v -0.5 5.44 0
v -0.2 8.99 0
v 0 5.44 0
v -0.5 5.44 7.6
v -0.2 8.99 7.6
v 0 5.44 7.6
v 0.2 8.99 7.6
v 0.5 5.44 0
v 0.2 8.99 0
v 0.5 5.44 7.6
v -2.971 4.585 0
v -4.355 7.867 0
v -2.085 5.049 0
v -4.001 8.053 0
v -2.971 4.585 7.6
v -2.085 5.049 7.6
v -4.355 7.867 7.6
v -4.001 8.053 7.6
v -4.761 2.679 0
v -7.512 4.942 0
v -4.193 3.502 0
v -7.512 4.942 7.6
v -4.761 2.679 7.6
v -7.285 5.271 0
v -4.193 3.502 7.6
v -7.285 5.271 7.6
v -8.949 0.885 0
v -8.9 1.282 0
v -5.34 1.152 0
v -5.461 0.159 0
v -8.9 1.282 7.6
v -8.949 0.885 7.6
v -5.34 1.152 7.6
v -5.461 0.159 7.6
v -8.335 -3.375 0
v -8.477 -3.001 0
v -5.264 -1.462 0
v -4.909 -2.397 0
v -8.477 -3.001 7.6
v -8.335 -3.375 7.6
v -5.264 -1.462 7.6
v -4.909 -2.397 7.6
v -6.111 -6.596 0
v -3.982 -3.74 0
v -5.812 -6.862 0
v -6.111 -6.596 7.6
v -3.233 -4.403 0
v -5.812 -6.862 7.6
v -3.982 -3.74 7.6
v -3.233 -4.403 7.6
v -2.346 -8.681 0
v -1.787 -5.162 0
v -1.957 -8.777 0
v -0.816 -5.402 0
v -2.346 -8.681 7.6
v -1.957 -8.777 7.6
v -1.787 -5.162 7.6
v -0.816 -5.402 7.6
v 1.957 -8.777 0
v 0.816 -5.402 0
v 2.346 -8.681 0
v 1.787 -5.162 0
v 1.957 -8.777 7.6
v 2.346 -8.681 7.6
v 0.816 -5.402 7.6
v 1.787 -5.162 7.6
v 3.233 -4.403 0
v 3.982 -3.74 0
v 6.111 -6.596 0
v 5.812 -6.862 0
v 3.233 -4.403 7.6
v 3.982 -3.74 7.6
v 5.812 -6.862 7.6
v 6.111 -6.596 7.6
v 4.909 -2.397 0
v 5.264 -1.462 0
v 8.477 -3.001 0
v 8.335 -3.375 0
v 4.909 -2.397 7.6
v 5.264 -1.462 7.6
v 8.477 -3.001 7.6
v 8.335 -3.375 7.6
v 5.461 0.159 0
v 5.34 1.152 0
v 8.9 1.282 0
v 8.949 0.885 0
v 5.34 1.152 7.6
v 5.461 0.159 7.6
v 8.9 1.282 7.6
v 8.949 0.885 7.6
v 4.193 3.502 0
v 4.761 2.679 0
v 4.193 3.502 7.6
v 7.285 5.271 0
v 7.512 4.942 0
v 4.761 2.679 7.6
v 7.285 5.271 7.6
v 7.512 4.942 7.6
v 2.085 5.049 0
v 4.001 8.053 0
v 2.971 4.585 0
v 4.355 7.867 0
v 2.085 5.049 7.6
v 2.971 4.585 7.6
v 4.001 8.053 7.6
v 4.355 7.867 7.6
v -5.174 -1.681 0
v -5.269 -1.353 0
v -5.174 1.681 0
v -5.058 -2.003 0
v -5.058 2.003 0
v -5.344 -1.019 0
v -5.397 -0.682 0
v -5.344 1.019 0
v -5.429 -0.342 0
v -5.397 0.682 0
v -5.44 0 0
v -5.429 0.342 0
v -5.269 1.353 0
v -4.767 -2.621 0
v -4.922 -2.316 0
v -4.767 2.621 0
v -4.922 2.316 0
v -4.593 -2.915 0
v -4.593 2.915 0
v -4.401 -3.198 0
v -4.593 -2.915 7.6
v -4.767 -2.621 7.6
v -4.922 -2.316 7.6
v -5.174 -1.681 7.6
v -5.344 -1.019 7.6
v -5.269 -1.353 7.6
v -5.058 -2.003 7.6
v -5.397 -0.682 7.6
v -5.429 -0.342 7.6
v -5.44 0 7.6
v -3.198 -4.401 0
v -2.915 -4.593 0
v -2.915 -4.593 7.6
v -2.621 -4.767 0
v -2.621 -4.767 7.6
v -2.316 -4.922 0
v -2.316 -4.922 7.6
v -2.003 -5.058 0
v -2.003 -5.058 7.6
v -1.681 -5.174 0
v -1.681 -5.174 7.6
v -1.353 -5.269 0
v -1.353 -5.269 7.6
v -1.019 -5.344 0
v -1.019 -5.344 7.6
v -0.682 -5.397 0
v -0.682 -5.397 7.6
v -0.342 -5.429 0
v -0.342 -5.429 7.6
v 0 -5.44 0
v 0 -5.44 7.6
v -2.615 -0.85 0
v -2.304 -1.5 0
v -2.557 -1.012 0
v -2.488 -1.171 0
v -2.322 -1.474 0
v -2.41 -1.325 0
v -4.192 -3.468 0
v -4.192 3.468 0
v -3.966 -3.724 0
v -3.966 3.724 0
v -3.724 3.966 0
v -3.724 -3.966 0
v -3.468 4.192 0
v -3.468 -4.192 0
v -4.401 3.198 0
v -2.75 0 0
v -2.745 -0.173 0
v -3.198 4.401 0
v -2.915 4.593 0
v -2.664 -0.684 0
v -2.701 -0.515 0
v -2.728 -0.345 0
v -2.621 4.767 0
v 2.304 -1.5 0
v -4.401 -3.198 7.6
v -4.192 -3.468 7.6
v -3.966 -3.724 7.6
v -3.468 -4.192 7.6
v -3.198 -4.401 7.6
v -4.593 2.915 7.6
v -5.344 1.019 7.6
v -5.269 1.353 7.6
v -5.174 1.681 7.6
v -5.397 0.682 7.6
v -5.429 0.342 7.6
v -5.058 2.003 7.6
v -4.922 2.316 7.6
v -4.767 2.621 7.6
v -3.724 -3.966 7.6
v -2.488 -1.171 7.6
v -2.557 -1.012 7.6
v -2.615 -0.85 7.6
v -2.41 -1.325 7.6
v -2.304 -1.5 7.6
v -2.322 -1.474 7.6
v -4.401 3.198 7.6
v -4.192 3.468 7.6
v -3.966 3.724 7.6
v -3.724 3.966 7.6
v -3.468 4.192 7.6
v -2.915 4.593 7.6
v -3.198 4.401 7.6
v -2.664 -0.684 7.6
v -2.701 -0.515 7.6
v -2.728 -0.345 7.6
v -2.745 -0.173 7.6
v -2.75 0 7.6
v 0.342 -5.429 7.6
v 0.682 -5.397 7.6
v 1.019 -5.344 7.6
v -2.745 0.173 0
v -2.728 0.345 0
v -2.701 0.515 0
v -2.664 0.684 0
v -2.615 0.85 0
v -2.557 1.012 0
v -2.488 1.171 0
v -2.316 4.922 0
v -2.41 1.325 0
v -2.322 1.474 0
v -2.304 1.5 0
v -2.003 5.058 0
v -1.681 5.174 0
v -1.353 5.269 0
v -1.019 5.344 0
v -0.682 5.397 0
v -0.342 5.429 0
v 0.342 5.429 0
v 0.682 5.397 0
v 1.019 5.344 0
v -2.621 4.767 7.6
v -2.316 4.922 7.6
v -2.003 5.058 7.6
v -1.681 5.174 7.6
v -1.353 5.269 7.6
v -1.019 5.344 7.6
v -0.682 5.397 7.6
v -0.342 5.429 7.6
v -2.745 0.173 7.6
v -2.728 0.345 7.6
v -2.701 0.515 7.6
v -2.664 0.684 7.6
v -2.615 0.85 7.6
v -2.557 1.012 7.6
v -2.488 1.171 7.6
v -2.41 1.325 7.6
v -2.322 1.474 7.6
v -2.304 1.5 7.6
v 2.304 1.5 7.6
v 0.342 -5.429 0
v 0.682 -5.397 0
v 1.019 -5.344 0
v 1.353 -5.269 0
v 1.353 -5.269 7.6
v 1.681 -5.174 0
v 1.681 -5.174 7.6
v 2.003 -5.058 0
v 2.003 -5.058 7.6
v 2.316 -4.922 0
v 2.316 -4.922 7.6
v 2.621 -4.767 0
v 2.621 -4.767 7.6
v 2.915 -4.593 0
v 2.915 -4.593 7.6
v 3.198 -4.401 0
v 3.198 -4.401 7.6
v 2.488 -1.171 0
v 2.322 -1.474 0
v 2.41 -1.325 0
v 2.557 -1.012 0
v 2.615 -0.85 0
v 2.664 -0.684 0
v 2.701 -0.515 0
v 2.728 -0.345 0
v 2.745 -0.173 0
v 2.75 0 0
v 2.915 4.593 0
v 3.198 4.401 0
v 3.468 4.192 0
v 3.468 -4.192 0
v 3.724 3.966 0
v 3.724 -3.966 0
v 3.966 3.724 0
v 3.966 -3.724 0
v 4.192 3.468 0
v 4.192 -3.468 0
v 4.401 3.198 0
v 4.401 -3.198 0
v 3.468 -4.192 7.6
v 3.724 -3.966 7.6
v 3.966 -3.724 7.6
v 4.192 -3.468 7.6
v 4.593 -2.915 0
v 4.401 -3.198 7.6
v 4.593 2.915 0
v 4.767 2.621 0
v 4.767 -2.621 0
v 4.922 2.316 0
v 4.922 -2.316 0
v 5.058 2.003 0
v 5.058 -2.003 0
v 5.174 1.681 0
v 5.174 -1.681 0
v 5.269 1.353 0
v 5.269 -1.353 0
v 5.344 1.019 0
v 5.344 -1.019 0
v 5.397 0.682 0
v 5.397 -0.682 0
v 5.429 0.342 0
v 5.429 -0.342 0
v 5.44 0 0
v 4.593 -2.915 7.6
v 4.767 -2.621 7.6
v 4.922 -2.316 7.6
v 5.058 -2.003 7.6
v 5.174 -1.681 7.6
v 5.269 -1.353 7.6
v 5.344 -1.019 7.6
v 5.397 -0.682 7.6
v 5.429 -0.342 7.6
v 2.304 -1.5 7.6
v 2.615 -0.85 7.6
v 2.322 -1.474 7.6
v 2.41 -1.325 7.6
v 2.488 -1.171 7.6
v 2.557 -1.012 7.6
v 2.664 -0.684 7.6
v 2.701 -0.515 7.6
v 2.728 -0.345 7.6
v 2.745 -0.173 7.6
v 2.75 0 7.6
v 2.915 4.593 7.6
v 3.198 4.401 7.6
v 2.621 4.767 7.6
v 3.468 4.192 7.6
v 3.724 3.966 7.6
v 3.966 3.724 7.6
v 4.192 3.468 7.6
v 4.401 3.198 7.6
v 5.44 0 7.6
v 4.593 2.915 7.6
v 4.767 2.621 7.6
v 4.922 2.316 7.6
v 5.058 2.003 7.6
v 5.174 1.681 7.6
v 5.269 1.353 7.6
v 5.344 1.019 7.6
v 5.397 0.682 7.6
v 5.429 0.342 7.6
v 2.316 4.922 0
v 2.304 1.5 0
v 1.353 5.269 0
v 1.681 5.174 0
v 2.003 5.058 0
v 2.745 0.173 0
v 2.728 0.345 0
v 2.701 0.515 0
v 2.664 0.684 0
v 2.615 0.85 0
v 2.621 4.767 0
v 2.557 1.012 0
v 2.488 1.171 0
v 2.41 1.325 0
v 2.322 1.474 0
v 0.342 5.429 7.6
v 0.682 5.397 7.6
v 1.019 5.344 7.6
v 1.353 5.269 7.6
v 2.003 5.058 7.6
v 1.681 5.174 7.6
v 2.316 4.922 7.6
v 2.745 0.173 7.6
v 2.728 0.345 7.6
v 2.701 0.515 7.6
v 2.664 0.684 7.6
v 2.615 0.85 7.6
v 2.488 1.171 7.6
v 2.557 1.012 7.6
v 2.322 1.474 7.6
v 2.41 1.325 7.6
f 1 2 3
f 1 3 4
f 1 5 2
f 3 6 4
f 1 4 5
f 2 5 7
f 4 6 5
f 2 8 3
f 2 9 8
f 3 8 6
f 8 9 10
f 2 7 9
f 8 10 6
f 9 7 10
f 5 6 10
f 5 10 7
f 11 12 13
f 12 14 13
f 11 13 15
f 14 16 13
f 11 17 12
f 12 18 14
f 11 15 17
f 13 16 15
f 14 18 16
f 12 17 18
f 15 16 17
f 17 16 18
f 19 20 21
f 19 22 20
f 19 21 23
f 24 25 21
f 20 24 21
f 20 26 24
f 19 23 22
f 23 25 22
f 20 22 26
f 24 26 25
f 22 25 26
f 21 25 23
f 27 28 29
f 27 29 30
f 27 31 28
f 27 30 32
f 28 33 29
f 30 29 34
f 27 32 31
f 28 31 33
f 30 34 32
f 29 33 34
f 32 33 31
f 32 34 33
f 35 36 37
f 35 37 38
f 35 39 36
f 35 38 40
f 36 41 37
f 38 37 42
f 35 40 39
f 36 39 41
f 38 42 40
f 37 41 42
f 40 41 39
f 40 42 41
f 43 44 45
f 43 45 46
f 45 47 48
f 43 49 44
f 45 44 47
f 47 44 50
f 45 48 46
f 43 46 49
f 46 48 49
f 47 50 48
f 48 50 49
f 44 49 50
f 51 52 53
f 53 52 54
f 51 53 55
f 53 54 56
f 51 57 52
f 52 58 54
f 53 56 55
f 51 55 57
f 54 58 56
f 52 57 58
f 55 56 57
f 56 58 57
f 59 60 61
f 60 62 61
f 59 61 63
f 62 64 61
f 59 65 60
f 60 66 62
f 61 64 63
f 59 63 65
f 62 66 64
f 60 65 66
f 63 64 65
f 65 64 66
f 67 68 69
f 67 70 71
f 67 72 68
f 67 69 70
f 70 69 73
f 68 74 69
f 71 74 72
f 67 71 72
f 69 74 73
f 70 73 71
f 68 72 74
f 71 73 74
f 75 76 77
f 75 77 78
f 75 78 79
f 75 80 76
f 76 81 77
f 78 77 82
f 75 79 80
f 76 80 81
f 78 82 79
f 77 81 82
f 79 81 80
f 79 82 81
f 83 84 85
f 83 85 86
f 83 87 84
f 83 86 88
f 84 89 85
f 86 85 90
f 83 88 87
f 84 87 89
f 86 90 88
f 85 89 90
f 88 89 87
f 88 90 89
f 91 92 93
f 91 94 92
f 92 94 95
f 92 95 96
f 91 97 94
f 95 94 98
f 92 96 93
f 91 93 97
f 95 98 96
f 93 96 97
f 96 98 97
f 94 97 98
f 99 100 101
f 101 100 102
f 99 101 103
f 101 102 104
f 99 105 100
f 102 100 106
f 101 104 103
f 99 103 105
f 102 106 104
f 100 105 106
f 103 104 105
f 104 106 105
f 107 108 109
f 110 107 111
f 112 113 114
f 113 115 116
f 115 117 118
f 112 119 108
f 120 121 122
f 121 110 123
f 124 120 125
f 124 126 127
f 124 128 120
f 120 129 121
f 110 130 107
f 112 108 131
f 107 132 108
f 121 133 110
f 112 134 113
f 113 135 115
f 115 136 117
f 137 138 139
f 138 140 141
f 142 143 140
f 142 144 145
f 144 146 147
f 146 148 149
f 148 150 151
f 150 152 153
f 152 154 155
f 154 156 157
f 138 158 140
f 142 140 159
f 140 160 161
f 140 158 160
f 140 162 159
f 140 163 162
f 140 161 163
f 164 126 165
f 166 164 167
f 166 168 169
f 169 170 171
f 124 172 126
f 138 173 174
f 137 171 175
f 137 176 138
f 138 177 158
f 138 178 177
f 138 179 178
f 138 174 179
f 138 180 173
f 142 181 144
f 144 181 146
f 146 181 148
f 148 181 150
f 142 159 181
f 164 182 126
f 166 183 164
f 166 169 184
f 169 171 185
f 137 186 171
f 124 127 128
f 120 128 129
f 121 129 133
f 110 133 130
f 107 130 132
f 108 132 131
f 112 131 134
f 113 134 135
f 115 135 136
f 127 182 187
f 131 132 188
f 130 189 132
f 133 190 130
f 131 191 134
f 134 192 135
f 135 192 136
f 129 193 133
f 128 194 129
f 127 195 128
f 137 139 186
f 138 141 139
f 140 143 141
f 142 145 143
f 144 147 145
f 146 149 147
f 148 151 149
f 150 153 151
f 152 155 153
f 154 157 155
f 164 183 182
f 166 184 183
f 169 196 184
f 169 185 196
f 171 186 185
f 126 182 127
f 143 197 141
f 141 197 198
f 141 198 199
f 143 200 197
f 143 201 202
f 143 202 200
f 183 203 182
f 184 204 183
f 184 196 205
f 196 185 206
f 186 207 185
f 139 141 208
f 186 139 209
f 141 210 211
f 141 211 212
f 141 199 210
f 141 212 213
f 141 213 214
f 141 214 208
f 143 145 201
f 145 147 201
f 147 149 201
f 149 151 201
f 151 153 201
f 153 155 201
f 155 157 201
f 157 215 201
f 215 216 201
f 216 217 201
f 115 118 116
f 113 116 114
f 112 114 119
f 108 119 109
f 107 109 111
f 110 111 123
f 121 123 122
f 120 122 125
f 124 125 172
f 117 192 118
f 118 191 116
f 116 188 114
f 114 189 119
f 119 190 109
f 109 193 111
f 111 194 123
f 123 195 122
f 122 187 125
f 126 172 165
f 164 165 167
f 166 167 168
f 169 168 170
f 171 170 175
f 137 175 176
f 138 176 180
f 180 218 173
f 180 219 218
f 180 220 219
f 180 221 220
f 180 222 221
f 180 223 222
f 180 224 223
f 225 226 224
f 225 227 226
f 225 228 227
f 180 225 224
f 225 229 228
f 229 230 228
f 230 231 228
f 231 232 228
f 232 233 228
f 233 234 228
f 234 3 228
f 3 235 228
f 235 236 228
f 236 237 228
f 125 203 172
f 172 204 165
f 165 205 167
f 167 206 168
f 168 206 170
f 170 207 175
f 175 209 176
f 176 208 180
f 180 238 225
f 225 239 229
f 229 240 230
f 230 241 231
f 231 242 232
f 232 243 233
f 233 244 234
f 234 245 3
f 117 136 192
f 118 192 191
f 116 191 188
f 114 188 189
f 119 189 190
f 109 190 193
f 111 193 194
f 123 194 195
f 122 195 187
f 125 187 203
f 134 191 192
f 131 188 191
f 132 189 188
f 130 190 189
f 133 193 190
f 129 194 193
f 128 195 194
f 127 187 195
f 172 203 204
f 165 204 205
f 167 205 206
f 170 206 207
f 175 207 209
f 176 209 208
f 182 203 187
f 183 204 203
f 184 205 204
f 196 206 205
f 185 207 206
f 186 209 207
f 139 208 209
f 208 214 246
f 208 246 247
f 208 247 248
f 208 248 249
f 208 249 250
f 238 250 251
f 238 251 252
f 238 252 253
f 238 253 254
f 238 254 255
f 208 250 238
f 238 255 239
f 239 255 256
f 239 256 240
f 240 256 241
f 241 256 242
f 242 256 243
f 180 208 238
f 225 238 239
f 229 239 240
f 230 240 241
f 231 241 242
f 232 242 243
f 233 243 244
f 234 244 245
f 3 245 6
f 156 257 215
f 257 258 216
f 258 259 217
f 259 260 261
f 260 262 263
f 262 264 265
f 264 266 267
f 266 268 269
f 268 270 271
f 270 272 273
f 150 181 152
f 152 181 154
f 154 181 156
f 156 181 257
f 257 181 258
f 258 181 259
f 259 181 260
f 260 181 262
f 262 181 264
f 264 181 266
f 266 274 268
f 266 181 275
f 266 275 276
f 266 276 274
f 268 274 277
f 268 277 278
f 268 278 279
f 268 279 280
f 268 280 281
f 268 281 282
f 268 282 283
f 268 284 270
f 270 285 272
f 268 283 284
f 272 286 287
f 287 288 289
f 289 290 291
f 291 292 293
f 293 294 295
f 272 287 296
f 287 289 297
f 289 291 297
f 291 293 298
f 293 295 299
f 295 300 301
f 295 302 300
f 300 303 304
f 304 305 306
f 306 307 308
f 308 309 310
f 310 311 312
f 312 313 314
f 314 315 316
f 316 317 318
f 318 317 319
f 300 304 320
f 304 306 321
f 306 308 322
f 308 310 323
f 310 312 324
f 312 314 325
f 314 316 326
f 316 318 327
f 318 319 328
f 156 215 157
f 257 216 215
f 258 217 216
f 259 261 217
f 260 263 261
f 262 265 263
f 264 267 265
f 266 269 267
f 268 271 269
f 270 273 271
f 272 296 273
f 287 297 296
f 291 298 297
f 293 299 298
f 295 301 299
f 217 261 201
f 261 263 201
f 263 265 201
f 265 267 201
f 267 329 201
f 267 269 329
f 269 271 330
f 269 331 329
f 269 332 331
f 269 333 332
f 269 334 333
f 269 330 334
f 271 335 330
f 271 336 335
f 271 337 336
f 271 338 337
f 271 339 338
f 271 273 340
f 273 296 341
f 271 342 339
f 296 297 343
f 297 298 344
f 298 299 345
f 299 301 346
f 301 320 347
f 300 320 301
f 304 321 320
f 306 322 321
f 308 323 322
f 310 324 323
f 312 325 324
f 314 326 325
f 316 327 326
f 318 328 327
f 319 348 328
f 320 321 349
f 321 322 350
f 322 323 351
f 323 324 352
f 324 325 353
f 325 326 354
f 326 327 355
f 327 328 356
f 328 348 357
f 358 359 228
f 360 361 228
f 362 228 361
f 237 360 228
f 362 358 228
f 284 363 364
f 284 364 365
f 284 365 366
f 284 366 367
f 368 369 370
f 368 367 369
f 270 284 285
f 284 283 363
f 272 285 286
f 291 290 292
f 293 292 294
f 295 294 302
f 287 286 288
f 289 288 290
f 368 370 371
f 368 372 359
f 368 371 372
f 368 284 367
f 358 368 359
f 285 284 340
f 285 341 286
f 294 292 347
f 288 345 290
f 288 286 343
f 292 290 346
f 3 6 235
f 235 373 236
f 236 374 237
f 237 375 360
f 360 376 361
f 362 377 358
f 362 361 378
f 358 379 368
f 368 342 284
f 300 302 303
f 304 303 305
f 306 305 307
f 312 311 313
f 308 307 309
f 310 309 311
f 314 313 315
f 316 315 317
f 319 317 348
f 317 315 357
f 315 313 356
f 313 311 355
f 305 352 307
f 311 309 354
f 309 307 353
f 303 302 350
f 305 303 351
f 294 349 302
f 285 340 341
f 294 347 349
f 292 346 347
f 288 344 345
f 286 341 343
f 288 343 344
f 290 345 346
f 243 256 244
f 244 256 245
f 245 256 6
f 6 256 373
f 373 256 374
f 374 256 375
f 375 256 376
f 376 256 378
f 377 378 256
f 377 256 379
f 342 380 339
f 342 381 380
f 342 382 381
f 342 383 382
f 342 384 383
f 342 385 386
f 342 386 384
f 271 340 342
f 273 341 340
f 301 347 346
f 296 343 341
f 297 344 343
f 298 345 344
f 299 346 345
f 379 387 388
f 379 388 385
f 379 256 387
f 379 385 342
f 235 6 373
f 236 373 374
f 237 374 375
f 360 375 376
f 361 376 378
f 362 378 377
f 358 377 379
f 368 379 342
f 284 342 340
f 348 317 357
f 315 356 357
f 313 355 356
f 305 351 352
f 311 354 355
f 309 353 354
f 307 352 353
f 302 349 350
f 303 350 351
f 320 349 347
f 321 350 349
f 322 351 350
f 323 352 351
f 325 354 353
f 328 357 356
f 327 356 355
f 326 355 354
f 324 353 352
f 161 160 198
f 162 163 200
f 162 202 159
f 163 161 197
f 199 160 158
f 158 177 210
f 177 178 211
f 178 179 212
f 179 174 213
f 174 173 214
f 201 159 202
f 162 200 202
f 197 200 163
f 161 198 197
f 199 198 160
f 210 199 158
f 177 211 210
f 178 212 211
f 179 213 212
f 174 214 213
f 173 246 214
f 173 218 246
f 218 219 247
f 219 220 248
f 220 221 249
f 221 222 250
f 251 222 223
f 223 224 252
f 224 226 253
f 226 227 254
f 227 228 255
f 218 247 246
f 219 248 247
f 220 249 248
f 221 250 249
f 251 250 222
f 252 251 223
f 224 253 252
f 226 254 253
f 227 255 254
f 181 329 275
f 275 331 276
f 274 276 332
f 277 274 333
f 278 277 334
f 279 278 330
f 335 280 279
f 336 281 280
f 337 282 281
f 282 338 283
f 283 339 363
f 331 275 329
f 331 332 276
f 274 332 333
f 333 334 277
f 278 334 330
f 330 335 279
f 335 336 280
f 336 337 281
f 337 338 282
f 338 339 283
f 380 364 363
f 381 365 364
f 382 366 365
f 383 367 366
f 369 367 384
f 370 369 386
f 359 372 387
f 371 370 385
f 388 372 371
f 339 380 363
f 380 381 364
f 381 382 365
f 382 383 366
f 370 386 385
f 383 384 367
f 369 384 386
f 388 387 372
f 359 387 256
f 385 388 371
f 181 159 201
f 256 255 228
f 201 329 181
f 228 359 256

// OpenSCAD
// ============================================================
// gear.scad
// Gear extracted from finger_and_ger_google_V3_fixed.stl
//
// Measured from the original STL (component 2 of the mesh):
//   - 13 teeth
//   - addendum (tip) radius  ~ 7.99 mm  -> outer diameter ~16.0 mm
//   - root radius             ~ 5.44 mm  -> ~10.9 mm
//   - center shaft hole dia.  ~ 5.15 mm
//   - gear thickness (height) ~ 7.60 mm
//
// Changes requested:
//   1) Shaft hole reshaped to match the 28BYJ-48's actual output
//      shaft: a round shaft with flats machined on TWO opposite
//      sides ("double-D" / stadium profile, confirmed from photos),
//      enlarged slightly for clearance -> 5.5 mm round dia.,
//      flattened to ~3 mm across the flats (adjust flat_half_width
//      below to match calipers on your actual motor)
//   2) Teeth extended (radially) by 1 mm  -> tip radius 7.99 -> 8.99 mm
//   3) Teeth made 1 mm thinner (circumferentially), both at the
//      root and the tip of each tooth
//
// This is a simple trapezoidal-tooth gear (not a true involute
// profile, matching the look of the scanned/printed original),
// built as a base cylinder (root circle) with trapezoidal teeth
// unioned on, then the shaft hole subtracted. Everything below
// is parametric -- change the values in the CONFIG section and
// the gear updates automatically.
// ============================================================

/* [CONFIG] */

// Number of teeth
teeth = 13;

// Root circle radius (base of the teeth) [mm]
root_r = 5.44;

// Tip (addendum) circle radius [mm]
// original was 7.99 -> extended by 1 mm per request
tip_r = 7.99 + 1;          // = 8.99

// Tooth width at the root, measured tangentially [mm]
// original estimate 2.0 -> made 1 mm thinner per request
tooth_root_width = 2.0 - 1;   // = 1.0

// Tooth width at the tip, measured tangentially [mm]
// original estimate 1.4 -> made 1 mm thinner per request
tooth_tip_width = 1.4 - 1;    // = 0.4

// Gear thickness / height [mm]
gear_thickness = 7.6;

// Shaft hole diameter [mm]
// original ~5.15 mm -> enlarged slightly for 28BYJ-48 stepper shaft
hole_diameter = 5.5;

// The 28BYJ-48 output shaft is flattened on TWO opposite sides
// (a symmetric "double-D" / stadium shape), not round, and not
// just a single flat. Set add_flats = true to cut both flats.
add_flats = true;

// Distance from the hole center to each flat face [mm]
// i.e. half the "across the flats" width.
// 28BYJ-48 shaft is ~5mm round stock flattened down to roughly
// 3mm across the flats -- measure your actual shaft with calipers
// and set flat_half_width = (across-flats measurement)/2.
// This is independent of hole_diameter, which still sets the
// diameter of the round part between the flats.
flat_half_width = 1.5;

// Rendering smoothness
$fn = 100;

/* [END CONFIG] */

module tooth() {
    linear_extrude(height = gear_thickness)
        polygon(points = [
            [-tooth_root_width/2, root_r],
            [-tooth_tip_width/2,  tip_r],
            [ tooth_tip_width/2,  tip_r],
            [ tooth_root_width/2, root_r]
        ]);
}

module shaft_hole() {
    h = gear_thickness + 4;
    if (add_flats) {
        // Round hole intersected with a box that is narrower than the
        // hole diameter -> leaves a flat cut on both the top and
        // bottom side, symmetric about the center (the 28BYJ-48's
        // "double-D" shaft profile).
        intersection() {
            translate([0, 0, -2])
                cylinder(d = hole_diameter, h = h);
            translate([-hole_diameter, -flat_half_width, -2])
                cube([hole_diameter * 2, flat_half_width * 2, h]);
        }
    } else {
        translate([0, 0, -2])
            cylinder(d = hole_diameter, h = h);
    }
}

module gear() {
    difference() {
        union() {
            cylinder(r = root_r, h = gear_thickness);
            for (i = [0 : teeth - 1])
                rotate([0, 0, i * 360 / teeth])
                    tooth();
        }
        shaft_hole();
    }
}

gear();
